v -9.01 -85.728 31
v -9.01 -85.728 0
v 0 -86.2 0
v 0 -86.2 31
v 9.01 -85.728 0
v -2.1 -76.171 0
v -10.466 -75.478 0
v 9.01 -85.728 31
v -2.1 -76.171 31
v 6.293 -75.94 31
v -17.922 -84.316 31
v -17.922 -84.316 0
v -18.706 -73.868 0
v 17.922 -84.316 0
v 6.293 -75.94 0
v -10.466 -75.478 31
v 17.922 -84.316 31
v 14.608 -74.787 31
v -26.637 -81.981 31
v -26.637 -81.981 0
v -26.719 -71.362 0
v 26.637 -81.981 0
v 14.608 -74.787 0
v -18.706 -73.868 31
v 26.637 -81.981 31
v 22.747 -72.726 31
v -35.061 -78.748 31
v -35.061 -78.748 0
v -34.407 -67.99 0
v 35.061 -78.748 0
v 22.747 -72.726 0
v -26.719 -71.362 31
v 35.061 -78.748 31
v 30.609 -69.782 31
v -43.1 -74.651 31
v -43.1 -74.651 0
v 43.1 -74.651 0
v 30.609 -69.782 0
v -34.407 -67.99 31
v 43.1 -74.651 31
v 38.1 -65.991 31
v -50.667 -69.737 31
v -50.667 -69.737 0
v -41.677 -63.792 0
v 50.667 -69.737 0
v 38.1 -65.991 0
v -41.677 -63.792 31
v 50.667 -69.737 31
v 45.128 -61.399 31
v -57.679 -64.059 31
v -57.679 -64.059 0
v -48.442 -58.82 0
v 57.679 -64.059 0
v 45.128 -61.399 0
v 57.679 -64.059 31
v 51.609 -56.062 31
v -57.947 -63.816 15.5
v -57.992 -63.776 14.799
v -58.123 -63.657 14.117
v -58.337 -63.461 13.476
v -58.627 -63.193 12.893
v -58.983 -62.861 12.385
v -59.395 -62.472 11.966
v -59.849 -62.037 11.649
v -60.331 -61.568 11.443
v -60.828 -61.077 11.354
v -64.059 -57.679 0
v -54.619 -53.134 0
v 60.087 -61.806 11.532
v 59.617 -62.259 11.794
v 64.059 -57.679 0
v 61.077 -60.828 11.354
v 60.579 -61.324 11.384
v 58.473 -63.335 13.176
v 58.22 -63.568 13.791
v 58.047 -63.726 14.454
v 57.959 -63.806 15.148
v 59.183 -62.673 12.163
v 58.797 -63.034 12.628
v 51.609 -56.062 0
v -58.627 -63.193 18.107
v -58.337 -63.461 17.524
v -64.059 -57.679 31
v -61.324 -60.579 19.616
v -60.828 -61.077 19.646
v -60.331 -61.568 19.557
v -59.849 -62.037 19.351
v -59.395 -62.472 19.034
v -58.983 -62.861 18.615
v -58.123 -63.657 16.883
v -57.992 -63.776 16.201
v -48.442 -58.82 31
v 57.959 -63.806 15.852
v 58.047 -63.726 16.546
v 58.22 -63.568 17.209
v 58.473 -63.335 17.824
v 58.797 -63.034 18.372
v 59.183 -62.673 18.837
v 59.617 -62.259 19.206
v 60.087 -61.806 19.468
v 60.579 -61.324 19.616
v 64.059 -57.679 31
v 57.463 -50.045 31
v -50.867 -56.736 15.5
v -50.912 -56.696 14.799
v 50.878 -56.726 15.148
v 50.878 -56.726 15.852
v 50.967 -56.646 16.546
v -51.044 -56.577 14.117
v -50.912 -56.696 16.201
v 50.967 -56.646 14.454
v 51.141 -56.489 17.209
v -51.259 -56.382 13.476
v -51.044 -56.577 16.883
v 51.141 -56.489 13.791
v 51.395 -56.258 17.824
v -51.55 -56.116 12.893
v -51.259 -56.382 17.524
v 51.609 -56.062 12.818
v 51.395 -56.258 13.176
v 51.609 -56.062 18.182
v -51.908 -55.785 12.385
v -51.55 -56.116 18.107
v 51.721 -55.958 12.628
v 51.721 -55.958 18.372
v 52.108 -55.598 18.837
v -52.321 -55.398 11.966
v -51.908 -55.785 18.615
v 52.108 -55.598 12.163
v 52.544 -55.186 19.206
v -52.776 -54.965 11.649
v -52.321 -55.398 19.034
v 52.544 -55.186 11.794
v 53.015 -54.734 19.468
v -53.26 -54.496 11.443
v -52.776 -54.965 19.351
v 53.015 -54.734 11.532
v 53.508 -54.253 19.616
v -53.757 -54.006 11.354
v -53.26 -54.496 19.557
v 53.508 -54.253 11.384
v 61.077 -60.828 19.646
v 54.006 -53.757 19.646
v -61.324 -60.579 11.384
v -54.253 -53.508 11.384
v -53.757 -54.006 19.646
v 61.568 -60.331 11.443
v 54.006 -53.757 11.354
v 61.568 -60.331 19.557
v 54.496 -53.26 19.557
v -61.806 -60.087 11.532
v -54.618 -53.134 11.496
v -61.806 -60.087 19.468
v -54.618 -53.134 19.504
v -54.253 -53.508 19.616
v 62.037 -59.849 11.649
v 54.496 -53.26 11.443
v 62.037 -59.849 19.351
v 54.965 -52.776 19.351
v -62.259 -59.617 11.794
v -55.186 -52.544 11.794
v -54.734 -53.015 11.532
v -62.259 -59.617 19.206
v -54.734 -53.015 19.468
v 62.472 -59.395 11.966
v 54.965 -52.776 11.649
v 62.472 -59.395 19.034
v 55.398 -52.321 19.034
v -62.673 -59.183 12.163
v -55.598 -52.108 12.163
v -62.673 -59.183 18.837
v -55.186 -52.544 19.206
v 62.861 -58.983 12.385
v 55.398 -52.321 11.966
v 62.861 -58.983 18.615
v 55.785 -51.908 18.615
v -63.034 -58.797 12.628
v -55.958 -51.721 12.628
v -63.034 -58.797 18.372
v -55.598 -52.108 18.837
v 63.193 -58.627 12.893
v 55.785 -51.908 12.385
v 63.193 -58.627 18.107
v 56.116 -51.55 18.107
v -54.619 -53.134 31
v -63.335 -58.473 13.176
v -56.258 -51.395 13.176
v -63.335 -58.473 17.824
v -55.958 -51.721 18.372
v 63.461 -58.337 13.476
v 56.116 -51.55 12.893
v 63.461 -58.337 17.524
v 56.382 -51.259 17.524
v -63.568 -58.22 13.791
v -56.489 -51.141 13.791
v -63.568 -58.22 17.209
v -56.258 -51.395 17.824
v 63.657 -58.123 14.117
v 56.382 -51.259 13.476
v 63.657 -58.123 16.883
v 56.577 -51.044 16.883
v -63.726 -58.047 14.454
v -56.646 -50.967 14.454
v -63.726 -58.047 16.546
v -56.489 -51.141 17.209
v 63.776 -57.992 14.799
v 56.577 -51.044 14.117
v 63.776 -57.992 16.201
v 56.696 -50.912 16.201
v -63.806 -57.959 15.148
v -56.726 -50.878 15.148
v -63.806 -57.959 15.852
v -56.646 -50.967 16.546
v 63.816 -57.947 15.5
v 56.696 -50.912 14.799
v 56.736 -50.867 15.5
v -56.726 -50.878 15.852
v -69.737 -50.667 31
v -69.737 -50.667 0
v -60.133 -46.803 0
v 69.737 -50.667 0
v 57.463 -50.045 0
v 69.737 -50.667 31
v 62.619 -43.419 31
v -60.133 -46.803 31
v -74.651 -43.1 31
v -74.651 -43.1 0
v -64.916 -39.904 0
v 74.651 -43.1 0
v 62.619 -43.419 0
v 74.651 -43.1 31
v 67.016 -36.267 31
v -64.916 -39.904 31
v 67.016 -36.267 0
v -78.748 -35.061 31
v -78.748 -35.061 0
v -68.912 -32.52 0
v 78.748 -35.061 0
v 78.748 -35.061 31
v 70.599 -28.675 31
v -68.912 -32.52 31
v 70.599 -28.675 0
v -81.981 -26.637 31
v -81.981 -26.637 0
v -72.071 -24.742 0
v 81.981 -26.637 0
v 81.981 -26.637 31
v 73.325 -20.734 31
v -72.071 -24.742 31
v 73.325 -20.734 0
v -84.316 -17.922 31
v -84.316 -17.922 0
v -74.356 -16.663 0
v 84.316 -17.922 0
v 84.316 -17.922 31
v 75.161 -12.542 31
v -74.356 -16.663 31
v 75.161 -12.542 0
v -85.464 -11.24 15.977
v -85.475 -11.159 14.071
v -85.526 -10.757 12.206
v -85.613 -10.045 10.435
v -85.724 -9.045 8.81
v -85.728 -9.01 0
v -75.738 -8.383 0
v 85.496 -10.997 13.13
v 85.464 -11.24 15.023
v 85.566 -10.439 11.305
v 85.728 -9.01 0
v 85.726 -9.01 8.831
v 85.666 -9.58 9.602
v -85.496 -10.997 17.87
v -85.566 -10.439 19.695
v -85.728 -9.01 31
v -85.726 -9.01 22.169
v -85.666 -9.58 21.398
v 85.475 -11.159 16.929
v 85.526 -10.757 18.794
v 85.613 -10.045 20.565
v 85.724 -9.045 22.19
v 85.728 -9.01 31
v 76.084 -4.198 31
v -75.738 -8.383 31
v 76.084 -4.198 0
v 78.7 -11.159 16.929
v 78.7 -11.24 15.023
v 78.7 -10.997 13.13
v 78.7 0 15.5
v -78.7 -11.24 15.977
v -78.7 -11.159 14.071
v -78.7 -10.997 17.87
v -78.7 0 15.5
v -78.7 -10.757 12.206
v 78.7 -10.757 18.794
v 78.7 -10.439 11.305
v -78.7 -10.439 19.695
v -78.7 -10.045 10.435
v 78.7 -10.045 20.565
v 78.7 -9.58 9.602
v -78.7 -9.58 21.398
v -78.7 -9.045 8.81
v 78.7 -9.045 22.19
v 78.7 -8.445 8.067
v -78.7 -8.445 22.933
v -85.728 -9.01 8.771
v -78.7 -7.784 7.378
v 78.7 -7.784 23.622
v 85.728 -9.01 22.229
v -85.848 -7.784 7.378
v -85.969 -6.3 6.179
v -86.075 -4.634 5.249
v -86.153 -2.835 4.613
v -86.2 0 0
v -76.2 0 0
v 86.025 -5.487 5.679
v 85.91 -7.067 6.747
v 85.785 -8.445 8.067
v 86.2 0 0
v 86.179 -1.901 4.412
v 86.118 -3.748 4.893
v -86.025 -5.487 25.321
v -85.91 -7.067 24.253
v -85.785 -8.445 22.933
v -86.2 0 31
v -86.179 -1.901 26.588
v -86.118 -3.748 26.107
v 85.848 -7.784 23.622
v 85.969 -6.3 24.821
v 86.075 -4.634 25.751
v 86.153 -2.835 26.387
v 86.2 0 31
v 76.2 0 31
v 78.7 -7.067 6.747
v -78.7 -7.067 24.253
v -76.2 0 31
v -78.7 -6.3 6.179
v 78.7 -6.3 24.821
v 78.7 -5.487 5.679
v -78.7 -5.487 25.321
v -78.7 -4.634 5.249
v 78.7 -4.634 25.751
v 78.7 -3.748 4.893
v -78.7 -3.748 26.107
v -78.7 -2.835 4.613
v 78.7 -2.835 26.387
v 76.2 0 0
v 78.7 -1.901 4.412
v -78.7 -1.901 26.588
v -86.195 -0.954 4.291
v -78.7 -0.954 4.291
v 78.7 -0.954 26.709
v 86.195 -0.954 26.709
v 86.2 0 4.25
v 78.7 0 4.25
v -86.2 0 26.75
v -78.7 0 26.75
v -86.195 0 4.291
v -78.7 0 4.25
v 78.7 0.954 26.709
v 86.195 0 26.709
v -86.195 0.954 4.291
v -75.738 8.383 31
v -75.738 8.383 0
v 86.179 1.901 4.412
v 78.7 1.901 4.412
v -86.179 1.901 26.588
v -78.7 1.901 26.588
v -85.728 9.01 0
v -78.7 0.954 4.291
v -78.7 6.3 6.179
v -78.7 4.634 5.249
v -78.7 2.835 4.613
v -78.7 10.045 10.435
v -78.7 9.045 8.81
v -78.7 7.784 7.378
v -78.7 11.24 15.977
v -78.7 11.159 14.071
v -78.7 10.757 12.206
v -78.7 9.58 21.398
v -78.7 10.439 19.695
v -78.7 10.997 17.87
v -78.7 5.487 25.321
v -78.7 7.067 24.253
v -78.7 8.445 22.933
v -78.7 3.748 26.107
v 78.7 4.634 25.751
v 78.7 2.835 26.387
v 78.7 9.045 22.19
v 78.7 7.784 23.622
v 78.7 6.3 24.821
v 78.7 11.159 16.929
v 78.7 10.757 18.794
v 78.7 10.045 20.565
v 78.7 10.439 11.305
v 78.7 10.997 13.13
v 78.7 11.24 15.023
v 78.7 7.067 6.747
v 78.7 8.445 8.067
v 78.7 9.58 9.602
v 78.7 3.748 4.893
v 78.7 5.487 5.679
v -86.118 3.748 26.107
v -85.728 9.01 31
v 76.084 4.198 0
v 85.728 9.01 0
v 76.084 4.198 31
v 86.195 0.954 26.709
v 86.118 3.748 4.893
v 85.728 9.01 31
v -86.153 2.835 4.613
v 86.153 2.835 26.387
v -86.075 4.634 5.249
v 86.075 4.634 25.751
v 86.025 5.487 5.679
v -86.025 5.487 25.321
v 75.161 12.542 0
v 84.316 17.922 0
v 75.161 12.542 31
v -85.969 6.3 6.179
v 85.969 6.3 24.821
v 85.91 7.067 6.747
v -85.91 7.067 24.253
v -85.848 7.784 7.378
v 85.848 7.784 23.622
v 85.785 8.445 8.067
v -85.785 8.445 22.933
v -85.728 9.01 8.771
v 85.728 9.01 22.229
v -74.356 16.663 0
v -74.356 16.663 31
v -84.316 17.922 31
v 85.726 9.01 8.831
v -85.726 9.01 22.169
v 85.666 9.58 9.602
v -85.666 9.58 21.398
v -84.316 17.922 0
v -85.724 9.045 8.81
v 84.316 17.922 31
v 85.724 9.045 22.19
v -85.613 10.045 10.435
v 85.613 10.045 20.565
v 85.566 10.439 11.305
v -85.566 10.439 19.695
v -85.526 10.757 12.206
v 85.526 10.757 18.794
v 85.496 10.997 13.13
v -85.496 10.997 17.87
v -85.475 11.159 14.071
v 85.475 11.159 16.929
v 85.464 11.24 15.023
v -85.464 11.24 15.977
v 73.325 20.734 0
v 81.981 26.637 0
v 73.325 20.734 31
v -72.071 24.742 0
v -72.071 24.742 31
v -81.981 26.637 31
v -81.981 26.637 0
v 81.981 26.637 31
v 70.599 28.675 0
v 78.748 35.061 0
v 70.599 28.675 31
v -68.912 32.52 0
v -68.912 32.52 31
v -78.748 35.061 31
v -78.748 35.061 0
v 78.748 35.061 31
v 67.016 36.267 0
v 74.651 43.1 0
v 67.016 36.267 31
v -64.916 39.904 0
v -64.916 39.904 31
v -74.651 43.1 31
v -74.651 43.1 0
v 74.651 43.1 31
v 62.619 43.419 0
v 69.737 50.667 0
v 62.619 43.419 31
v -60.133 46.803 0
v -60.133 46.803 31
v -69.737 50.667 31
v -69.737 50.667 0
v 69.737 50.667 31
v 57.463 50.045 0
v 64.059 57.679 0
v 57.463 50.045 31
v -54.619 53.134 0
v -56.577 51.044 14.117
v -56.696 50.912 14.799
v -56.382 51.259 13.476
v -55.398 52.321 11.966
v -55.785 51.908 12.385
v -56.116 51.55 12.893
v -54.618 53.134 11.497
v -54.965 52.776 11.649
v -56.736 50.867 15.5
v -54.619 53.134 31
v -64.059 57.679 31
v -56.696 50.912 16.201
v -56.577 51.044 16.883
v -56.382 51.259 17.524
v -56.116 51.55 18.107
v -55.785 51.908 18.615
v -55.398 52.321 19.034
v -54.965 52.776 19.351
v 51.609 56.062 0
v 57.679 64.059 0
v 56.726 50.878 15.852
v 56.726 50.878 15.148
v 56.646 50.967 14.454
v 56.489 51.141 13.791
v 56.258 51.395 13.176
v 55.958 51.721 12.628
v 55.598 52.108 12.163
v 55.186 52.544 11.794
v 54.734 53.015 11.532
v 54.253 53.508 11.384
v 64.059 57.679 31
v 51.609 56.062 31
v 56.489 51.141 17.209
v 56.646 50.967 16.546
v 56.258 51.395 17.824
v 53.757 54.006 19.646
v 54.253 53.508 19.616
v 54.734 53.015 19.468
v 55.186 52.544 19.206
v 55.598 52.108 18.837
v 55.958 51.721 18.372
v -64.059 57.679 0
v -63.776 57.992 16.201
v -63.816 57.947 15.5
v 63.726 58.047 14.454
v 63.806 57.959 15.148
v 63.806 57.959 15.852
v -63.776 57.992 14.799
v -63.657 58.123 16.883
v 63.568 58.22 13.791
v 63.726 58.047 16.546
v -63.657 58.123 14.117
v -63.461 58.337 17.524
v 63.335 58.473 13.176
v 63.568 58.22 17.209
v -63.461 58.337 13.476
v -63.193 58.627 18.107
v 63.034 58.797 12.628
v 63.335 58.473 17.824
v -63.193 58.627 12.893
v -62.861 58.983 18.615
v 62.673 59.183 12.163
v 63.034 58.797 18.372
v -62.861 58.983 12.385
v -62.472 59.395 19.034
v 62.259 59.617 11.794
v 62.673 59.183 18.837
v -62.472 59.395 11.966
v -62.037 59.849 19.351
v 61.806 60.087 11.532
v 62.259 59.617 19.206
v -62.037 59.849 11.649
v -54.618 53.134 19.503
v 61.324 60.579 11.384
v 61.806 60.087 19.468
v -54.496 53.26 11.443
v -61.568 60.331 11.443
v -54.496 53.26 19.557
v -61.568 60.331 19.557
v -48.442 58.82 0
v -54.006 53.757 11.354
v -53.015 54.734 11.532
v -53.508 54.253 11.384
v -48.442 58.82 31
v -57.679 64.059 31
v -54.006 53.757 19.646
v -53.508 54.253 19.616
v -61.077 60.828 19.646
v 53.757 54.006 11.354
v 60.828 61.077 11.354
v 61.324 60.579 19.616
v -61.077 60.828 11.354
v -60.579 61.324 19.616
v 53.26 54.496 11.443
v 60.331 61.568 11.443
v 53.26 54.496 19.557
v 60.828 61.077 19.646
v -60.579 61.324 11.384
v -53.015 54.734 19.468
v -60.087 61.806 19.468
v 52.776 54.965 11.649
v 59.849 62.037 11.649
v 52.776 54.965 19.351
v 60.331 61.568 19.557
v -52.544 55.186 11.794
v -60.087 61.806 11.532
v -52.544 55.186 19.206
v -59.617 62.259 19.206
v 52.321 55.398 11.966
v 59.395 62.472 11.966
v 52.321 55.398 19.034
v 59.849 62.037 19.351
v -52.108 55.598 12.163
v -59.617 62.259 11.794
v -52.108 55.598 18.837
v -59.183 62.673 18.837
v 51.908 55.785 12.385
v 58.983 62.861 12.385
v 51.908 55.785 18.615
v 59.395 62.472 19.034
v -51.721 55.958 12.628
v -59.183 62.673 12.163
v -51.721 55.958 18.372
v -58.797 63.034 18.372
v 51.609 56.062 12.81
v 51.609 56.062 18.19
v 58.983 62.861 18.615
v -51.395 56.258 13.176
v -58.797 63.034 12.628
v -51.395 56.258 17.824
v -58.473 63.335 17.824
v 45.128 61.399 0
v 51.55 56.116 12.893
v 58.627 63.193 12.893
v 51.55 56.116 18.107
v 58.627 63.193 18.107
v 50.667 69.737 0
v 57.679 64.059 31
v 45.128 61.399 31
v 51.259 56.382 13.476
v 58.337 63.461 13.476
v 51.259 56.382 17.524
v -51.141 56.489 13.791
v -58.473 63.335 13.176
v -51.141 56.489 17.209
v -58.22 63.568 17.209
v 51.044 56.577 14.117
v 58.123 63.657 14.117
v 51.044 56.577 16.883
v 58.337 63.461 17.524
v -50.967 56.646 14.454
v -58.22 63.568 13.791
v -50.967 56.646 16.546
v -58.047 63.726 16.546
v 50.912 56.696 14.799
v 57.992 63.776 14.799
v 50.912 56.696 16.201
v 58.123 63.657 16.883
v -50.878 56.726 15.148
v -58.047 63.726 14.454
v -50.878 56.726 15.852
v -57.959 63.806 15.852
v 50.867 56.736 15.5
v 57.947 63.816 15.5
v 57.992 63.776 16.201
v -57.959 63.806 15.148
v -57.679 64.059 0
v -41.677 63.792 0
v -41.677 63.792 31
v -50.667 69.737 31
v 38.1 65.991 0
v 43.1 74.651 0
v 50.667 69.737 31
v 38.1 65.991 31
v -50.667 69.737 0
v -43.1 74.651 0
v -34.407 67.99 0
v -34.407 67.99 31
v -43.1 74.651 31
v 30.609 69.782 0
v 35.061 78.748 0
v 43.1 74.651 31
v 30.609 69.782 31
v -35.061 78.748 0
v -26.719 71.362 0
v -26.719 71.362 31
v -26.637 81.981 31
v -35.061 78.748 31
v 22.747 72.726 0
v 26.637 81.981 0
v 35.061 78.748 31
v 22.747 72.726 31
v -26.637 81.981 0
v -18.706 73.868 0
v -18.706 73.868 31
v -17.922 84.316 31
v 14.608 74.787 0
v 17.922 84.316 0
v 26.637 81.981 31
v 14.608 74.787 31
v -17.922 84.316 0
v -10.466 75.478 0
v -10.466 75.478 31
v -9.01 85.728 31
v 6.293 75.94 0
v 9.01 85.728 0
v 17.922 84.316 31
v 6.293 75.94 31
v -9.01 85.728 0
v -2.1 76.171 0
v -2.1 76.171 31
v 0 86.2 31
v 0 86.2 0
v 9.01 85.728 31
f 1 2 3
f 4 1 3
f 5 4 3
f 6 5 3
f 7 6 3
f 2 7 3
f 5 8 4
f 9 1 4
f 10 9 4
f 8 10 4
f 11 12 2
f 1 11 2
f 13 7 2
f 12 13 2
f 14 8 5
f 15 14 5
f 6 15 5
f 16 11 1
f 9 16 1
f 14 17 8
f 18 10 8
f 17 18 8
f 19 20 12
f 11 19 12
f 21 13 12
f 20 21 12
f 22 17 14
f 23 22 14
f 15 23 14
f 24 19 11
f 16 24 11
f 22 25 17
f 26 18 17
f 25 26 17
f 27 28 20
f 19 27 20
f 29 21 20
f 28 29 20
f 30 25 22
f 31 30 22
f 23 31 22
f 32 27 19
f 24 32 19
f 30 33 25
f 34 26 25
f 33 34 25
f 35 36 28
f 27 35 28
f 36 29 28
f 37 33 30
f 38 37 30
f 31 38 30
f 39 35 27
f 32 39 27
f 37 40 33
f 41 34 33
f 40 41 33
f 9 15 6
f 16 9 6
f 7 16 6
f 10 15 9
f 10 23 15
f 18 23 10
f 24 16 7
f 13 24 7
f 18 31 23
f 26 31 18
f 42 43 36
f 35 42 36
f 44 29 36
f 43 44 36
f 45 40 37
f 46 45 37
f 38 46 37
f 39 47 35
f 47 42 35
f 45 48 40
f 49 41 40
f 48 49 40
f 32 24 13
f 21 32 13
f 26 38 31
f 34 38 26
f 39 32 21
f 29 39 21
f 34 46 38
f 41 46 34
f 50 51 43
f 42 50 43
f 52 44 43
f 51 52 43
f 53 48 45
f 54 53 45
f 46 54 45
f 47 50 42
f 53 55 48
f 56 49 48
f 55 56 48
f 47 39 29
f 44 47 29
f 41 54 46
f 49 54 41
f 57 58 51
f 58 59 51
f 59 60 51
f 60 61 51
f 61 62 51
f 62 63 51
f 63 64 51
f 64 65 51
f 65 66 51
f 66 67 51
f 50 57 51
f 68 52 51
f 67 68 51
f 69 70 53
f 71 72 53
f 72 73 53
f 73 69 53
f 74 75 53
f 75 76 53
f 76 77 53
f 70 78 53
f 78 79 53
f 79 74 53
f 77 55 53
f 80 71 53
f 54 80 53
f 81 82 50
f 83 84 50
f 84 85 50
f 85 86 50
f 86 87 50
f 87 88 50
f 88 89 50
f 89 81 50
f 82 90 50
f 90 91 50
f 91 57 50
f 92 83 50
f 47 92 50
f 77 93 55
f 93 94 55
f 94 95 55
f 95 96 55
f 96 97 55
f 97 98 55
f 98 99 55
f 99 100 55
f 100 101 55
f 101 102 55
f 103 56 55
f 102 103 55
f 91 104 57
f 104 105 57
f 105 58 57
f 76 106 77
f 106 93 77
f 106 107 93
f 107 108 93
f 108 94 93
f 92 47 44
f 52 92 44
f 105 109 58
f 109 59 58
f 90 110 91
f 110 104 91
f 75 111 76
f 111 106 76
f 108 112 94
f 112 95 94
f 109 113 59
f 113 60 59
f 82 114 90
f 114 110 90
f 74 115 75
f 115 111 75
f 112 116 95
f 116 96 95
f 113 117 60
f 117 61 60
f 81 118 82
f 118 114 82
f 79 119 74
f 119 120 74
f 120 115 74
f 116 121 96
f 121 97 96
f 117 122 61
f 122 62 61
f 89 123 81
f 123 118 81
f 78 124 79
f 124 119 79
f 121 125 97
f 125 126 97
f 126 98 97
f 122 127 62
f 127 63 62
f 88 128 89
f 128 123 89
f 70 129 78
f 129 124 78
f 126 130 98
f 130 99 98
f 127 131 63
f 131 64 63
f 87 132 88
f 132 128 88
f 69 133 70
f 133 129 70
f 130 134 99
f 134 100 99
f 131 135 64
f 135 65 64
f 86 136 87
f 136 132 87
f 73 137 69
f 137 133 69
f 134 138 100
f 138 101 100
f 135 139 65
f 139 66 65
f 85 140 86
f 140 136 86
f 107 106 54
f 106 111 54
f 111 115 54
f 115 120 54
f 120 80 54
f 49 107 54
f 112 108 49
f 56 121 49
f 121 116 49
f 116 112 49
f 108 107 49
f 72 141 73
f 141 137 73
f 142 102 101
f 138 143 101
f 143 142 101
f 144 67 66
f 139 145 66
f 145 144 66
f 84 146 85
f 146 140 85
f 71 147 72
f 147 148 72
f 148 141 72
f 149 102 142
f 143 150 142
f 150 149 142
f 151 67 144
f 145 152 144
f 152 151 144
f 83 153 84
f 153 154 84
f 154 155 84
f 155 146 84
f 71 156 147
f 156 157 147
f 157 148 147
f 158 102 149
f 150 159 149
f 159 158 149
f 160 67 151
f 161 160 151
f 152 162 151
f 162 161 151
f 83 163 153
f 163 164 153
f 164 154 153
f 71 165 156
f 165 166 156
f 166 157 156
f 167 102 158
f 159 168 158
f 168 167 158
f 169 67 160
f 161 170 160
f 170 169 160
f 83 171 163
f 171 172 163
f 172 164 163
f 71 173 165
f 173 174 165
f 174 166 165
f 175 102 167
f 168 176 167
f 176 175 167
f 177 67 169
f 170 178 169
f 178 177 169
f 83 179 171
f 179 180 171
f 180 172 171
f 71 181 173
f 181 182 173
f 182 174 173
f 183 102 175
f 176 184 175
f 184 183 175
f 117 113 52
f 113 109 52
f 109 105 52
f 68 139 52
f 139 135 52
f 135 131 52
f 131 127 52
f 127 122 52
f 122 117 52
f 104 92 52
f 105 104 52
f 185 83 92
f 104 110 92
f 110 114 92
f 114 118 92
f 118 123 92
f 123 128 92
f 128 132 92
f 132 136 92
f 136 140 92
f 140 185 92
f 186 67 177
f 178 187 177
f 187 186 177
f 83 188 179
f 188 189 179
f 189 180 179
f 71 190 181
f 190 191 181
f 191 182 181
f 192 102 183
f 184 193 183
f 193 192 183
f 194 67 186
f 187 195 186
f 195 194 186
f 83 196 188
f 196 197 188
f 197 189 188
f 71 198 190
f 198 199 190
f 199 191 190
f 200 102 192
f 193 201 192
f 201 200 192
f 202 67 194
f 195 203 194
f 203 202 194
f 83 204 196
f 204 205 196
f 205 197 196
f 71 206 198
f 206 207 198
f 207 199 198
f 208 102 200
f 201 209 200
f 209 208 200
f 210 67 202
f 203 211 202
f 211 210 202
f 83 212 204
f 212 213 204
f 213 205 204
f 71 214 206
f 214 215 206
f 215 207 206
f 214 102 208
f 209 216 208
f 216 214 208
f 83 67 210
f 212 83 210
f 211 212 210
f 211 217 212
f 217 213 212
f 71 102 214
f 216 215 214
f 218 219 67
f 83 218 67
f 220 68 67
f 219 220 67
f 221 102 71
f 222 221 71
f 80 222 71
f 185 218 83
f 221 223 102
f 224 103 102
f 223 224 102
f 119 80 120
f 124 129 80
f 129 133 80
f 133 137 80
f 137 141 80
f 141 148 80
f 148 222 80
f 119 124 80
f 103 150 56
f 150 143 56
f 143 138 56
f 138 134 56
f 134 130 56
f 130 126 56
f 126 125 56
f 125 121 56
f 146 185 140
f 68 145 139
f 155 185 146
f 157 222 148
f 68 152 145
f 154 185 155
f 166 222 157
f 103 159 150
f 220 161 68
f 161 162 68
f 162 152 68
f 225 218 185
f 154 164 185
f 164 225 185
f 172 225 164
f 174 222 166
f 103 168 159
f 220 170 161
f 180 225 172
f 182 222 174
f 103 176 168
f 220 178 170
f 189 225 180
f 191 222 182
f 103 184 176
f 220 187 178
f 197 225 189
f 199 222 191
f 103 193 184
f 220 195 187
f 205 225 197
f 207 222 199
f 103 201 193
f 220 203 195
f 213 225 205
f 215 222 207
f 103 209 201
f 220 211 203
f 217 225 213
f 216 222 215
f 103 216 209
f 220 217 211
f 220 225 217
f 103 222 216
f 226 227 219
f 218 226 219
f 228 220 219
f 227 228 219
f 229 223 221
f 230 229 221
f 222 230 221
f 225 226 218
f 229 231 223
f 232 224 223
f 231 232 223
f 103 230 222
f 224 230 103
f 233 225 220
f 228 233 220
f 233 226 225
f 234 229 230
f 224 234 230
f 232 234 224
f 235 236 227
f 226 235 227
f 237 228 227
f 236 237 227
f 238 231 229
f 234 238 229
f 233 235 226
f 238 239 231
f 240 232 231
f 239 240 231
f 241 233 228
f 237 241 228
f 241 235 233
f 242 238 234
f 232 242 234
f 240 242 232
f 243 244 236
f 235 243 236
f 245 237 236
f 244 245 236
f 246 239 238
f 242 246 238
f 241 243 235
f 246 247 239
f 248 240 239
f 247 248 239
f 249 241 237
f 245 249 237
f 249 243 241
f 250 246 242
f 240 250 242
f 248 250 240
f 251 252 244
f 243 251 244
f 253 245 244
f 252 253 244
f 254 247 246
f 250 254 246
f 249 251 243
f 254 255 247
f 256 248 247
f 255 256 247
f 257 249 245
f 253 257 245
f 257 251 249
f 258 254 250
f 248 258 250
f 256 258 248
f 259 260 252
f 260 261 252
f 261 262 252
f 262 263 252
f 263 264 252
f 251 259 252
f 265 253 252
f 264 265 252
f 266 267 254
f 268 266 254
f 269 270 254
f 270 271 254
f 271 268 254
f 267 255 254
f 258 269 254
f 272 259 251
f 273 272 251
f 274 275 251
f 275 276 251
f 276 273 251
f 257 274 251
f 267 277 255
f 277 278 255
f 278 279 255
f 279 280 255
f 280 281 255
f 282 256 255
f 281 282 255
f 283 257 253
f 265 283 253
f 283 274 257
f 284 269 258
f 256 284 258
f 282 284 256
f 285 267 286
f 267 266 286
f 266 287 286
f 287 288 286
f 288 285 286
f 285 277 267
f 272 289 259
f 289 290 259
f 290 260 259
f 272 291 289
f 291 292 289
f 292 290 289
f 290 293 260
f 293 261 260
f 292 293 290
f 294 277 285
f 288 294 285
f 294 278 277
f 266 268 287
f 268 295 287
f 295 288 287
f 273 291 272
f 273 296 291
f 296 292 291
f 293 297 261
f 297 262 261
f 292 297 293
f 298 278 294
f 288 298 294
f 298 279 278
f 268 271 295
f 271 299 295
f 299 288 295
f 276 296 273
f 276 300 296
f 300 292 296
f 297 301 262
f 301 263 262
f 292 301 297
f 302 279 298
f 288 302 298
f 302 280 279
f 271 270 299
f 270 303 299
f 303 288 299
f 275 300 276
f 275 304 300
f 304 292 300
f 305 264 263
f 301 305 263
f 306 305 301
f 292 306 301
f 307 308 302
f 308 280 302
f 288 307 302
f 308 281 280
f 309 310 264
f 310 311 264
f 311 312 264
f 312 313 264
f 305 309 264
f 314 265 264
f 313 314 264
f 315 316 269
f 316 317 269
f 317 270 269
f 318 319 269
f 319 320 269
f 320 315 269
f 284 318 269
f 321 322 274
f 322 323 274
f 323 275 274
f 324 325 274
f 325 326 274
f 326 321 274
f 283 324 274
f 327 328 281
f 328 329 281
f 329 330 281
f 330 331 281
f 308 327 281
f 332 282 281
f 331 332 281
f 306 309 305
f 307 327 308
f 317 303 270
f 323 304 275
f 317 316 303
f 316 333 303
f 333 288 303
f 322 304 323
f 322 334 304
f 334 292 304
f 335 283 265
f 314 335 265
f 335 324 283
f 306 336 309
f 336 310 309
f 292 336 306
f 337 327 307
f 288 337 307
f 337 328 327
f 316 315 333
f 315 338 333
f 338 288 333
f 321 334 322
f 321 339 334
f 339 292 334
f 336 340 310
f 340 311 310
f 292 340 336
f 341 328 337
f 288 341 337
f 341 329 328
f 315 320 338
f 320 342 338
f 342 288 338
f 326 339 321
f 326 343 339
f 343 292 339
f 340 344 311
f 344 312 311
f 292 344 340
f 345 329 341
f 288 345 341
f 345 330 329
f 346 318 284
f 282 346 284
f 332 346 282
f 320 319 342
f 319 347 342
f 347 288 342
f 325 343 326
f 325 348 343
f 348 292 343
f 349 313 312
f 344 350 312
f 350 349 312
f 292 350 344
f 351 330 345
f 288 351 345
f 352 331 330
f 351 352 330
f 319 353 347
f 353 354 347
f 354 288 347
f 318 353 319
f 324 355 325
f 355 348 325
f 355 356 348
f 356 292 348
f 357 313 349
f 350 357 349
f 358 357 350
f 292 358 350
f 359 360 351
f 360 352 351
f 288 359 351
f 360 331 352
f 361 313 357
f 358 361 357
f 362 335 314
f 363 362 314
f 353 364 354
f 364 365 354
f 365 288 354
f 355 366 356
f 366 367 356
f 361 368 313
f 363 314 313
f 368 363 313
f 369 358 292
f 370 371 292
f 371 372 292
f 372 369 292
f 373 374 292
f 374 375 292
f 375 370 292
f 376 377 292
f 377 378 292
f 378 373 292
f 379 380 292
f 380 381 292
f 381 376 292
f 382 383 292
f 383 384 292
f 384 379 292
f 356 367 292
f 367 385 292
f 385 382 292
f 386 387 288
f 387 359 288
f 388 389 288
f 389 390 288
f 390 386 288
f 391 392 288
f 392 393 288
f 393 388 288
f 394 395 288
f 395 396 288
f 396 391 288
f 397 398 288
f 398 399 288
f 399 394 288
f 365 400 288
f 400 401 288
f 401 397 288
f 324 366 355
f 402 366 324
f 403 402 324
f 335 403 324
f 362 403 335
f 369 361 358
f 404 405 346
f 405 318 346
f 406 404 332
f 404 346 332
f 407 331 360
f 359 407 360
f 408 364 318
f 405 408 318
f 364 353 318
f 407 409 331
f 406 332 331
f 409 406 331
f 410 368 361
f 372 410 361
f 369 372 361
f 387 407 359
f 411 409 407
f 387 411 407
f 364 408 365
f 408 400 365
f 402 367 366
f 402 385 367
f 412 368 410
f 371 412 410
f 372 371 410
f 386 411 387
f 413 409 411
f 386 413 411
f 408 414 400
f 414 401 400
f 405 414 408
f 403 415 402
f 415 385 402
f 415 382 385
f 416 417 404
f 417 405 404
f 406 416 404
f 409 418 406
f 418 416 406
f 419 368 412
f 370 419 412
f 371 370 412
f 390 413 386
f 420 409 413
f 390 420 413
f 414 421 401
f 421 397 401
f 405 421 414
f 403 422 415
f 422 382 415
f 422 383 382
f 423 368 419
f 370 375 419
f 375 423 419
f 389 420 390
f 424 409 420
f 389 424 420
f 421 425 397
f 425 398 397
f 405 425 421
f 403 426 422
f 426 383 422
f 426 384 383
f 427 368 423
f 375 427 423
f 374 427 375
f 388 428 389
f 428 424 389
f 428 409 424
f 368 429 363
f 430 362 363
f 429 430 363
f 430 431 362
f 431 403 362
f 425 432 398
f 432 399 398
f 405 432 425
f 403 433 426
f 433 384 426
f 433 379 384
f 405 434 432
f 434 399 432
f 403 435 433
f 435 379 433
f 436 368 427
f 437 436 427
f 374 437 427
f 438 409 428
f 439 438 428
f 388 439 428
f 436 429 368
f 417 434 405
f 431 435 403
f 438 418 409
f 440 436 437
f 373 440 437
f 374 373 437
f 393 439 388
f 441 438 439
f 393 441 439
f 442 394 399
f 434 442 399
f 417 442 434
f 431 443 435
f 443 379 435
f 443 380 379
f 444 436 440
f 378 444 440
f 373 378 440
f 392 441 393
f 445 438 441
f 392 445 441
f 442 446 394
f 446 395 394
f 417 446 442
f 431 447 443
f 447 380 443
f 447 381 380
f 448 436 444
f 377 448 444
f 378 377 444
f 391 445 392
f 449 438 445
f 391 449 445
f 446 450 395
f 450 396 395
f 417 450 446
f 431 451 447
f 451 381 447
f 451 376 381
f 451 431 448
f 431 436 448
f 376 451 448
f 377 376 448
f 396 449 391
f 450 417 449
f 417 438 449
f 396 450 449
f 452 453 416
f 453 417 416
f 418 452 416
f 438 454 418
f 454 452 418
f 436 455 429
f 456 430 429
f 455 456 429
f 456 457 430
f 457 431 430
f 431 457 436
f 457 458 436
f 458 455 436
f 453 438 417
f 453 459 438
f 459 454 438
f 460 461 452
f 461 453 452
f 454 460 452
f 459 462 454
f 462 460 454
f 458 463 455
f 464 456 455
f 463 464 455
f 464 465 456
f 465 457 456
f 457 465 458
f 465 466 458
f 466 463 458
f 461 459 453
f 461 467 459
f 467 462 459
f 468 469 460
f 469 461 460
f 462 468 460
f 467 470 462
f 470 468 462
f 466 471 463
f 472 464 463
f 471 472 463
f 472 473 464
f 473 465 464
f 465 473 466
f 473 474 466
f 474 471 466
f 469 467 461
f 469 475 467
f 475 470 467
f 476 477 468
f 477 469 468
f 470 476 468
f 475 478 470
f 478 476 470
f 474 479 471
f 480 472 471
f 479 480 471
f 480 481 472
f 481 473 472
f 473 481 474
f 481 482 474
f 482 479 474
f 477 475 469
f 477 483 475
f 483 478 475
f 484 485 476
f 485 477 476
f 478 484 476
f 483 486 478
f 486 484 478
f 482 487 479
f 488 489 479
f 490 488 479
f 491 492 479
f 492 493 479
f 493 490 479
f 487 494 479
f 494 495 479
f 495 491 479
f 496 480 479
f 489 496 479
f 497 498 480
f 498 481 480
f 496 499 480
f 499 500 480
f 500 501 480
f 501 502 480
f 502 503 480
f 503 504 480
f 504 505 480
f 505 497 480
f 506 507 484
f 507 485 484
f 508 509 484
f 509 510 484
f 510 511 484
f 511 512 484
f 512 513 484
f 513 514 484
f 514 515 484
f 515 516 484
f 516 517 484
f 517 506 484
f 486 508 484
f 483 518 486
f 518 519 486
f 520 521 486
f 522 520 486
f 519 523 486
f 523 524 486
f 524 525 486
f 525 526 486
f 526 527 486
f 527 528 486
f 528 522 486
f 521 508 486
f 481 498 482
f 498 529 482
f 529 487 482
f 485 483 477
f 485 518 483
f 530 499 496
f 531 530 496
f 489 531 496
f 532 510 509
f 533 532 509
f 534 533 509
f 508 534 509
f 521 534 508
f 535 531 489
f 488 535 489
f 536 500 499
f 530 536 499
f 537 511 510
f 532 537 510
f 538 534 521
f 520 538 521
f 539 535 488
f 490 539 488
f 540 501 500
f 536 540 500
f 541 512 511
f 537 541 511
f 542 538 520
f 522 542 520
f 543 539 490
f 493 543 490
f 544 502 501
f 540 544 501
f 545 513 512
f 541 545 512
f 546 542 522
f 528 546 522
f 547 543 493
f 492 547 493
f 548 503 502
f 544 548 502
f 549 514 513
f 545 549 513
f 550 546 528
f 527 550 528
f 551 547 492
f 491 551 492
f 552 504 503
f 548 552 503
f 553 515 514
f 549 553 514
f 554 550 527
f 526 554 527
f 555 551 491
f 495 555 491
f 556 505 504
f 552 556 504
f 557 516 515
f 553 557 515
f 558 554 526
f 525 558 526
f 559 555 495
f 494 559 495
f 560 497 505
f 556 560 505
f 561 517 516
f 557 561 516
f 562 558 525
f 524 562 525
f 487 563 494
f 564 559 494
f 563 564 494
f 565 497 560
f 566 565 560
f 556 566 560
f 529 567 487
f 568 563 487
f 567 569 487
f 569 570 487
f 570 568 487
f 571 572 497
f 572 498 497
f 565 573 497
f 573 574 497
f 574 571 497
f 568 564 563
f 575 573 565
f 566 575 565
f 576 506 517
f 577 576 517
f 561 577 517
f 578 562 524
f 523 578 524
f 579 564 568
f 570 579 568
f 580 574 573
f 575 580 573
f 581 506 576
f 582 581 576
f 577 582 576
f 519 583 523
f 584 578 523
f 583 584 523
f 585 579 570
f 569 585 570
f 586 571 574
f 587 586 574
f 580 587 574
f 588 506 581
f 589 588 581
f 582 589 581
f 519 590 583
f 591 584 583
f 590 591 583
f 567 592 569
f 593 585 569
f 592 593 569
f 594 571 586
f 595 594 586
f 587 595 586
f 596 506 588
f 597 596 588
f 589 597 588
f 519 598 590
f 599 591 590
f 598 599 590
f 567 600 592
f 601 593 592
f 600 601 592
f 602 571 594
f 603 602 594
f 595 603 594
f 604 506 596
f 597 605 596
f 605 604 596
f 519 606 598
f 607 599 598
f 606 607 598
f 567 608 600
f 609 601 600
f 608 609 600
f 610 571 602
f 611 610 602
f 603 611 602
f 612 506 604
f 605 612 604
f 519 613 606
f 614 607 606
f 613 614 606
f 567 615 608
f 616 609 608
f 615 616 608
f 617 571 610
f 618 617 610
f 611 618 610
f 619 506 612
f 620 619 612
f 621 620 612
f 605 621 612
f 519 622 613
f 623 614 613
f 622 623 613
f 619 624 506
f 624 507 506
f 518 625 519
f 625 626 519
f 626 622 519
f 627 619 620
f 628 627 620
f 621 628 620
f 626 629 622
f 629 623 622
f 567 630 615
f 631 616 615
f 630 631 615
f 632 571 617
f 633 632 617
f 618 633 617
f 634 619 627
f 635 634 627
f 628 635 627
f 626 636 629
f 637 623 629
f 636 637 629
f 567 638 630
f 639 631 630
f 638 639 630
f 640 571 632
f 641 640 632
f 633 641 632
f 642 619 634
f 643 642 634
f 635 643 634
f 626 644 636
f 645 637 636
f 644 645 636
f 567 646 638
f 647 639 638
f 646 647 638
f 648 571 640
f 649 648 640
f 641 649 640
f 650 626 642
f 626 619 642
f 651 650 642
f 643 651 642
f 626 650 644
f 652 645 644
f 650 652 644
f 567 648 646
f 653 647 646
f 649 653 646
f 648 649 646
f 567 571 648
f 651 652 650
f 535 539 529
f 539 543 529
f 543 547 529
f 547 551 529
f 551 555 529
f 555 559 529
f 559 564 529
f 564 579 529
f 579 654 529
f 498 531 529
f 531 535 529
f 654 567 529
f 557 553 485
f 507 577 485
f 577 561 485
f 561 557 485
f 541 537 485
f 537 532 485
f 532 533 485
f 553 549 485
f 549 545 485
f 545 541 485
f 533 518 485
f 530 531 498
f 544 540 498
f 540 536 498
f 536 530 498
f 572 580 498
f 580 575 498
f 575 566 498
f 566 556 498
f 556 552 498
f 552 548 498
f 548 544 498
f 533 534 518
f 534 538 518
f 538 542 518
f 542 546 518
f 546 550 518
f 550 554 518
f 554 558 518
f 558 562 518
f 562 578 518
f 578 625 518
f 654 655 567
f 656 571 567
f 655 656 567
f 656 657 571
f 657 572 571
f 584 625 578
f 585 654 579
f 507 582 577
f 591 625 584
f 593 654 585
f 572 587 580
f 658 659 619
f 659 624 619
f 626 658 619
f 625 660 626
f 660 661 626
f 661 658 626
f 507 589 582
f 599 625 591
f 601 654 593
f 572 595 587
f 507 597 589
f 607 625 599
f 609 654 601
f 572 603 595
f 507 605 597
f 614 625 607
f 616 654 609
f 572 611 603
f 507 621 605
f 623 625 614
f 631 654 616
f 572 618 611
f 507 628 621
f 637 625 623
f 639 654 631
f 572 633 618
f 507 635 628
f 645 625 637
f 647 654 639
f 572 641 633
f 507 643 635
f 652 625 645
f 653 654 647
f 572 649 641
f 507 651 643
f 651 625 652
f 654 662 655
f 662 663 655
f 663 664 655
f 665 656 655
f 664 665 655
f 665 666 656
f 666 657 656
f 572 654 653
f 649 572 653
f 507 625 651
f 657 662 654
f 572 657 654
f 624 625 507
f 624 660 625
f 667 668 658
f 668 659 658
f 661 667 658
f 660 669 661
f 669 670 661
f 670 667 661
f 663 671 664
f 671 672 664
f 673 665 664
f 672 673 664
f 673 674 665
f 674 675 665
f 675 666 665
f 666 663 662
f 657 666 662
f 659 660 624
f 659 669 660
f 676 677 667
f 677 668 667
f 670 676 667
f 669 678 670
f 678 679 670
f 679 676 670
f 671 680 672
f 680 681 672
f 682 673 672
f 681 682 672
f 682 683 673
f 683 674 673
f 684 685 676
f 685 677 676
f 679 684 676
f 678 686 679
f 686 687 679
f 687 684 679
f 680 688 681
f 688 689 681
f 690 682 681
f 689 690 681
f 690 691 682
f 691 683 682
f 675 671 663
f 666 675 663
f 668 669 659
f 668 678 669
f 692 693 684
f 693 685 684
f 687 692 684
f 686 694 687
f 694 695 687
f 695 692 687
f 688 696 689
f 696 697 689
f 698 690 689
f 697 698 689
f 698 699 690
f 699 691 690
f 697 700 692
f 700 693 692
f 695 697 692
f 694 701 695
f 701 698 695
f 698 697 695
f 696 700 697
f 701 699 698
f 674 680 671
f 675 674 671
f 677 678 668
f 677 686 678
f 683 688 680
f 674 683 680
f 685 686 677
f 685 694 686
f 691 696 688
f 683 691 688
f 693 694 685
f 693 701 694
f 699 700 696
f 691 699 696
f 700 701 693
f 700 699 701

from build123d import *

# Parameters (mm, degrees)
ESBO_O2_R                                      = 86.2
ESBO_O2_R_2                                    = 76.2
RESSALTO_EXTRUS_O1_DEPTH                       = 31
FURO_ROSCADO_PARA_CONDU_TE_DE_M8X1_252_D       = 8.3
FURO_ROSCADO_PARA_CONDU_TE_DE_M8X1_252_DEPTH   = 86.2
FURO_ROSCADO_PARA_CONDU_TE_DE_M8X1_252_O_D     = 8.3
FURO_ROSCADO_PARA_CONDU_TE_DE_M8X1_252_O_DEPTH = 86.2
FURO_ROSCADO_PARA_CONDU_TE_DE_M8X1_2_2_D       = 8.3
FURO_ROSCADO_PARA_CONDU_TE_DE_M8X1_2_2_DEPTH   = 86.2
FURO_ROSCADO_PARA_CONDU_TE_DE_M8X1_2_3_D       = 8.3
FURO_ROSCADO_PARA_CONDU_TE_DE_M8X1_2_3_DEPTH   = 86.2
ESBO_O11_R                                     = 11.25
CORTE_EXTRUS_O1_DEPTH                          = 7.5


with BuildPart() as part:
    # Esboço2 → Ressalto-extrusão1 (new body)
    with BuildSketch(Plane.XY):
        Circle(ESBO_O2_R)
        Circle(ESBO_O2_R_2, mode=Mode.SUBTRACT)
    extrude(amount=RESSALTO_EXTRUS_O1_DEPTH)

    # Furo roscado para conduíte de M8x1.252
    with Locations(Plane(origin=(60.952604538, -60.952604538, 15.5), x_dir=(-0.707106781187, -0.707106781187, 0), z_dir=(0.707106781187, -0.707106781187, 0))):
        with Locations((0, 0)):
            Hole(FURO_ROSCADO_PARA_CONDU_TE_DE_M8X1_252_D / 2, depth=FURO_ROSCADO_PARA_CONDU_TE_DE_M8X1_252_DEPTH)

    # Furo roscado para conduíte de M8x1.252 o
    with Locations(Plane(origin=(-60.952604538, 60.952604538, 15.5), x_dir=(0.707106781187, 0.707106781187, 0), z_dir=(-0.707106781187, 0.707106781187, 0))):
        with Locations((0, 0)):
            Hole(FURO_ROSCADO_PARA_CONDU_TE_DE_M8X1_252_O_D / 2, depth=FURO_ROSCADO_PARA_CONDU_TE_DE_M8X1_252_O_DEPTH)

    # Furo roscado para condu_te de M8x1.2 2
    with Locations(Plane(origin=(60.952604538, 60.952604538, 15.5), x_dir=(0.707106781187, -0.707106781187, 0), z_dir=(0.707106781187, 0.707106781187, 0))):
        with Locations((0, 0)):
            Hole(FURO_ROSCADO_PARA_CONDU_TE_DE_M8X1_2_2_D / 2, depth=FURO_ROSCADO_PARA_CONDU_TE_DE_M8X1_2_2_DEPTH)

    # Furo roscado para condu_te de M8x1.2 3
    with Locations(Plane(origin=(-60.952604538, -60.952604538, 15.5), x_dir=(-0.707106781187, 0.707106781187, 0), z_dir=(-0.707106781187, -0.707106781187, 0))):
        with Locations((0, 0)):
            Hole(FURO_ROSCADO_PARA_CONDU_TE_DE_M8X1_2_3_D / 2, depth=FURO_ROSCADO_PARA_CONDU_TE_DE_M8X1_2_3_DEPTH)

    # Esboço11 → Corte-extrusão1 (cut)
    with BuildSketch(Plane(origin=(86.2, 0, 0), x_dir=(0, 0, -1), z_dir=(1, 0, 0))):
        with Locations((-15.5, 0)):
            Circle(ESBO_O11_R)
    corte_extrus_o1 = extrude(amount=-CORTE_EXTRUS_O1_DEPTH, mode=Mode.SUBTRACT)

    # Espelhar1: Corte-extrusão1 across plane
    add(corte_extrus_o1.mirror(Plane(origin=(0, 0, 0), x_dir=(0, 0, 1), z_dir=(1, 0, 0))), mode=Mode.SUBTRACT)


solid = part.part
